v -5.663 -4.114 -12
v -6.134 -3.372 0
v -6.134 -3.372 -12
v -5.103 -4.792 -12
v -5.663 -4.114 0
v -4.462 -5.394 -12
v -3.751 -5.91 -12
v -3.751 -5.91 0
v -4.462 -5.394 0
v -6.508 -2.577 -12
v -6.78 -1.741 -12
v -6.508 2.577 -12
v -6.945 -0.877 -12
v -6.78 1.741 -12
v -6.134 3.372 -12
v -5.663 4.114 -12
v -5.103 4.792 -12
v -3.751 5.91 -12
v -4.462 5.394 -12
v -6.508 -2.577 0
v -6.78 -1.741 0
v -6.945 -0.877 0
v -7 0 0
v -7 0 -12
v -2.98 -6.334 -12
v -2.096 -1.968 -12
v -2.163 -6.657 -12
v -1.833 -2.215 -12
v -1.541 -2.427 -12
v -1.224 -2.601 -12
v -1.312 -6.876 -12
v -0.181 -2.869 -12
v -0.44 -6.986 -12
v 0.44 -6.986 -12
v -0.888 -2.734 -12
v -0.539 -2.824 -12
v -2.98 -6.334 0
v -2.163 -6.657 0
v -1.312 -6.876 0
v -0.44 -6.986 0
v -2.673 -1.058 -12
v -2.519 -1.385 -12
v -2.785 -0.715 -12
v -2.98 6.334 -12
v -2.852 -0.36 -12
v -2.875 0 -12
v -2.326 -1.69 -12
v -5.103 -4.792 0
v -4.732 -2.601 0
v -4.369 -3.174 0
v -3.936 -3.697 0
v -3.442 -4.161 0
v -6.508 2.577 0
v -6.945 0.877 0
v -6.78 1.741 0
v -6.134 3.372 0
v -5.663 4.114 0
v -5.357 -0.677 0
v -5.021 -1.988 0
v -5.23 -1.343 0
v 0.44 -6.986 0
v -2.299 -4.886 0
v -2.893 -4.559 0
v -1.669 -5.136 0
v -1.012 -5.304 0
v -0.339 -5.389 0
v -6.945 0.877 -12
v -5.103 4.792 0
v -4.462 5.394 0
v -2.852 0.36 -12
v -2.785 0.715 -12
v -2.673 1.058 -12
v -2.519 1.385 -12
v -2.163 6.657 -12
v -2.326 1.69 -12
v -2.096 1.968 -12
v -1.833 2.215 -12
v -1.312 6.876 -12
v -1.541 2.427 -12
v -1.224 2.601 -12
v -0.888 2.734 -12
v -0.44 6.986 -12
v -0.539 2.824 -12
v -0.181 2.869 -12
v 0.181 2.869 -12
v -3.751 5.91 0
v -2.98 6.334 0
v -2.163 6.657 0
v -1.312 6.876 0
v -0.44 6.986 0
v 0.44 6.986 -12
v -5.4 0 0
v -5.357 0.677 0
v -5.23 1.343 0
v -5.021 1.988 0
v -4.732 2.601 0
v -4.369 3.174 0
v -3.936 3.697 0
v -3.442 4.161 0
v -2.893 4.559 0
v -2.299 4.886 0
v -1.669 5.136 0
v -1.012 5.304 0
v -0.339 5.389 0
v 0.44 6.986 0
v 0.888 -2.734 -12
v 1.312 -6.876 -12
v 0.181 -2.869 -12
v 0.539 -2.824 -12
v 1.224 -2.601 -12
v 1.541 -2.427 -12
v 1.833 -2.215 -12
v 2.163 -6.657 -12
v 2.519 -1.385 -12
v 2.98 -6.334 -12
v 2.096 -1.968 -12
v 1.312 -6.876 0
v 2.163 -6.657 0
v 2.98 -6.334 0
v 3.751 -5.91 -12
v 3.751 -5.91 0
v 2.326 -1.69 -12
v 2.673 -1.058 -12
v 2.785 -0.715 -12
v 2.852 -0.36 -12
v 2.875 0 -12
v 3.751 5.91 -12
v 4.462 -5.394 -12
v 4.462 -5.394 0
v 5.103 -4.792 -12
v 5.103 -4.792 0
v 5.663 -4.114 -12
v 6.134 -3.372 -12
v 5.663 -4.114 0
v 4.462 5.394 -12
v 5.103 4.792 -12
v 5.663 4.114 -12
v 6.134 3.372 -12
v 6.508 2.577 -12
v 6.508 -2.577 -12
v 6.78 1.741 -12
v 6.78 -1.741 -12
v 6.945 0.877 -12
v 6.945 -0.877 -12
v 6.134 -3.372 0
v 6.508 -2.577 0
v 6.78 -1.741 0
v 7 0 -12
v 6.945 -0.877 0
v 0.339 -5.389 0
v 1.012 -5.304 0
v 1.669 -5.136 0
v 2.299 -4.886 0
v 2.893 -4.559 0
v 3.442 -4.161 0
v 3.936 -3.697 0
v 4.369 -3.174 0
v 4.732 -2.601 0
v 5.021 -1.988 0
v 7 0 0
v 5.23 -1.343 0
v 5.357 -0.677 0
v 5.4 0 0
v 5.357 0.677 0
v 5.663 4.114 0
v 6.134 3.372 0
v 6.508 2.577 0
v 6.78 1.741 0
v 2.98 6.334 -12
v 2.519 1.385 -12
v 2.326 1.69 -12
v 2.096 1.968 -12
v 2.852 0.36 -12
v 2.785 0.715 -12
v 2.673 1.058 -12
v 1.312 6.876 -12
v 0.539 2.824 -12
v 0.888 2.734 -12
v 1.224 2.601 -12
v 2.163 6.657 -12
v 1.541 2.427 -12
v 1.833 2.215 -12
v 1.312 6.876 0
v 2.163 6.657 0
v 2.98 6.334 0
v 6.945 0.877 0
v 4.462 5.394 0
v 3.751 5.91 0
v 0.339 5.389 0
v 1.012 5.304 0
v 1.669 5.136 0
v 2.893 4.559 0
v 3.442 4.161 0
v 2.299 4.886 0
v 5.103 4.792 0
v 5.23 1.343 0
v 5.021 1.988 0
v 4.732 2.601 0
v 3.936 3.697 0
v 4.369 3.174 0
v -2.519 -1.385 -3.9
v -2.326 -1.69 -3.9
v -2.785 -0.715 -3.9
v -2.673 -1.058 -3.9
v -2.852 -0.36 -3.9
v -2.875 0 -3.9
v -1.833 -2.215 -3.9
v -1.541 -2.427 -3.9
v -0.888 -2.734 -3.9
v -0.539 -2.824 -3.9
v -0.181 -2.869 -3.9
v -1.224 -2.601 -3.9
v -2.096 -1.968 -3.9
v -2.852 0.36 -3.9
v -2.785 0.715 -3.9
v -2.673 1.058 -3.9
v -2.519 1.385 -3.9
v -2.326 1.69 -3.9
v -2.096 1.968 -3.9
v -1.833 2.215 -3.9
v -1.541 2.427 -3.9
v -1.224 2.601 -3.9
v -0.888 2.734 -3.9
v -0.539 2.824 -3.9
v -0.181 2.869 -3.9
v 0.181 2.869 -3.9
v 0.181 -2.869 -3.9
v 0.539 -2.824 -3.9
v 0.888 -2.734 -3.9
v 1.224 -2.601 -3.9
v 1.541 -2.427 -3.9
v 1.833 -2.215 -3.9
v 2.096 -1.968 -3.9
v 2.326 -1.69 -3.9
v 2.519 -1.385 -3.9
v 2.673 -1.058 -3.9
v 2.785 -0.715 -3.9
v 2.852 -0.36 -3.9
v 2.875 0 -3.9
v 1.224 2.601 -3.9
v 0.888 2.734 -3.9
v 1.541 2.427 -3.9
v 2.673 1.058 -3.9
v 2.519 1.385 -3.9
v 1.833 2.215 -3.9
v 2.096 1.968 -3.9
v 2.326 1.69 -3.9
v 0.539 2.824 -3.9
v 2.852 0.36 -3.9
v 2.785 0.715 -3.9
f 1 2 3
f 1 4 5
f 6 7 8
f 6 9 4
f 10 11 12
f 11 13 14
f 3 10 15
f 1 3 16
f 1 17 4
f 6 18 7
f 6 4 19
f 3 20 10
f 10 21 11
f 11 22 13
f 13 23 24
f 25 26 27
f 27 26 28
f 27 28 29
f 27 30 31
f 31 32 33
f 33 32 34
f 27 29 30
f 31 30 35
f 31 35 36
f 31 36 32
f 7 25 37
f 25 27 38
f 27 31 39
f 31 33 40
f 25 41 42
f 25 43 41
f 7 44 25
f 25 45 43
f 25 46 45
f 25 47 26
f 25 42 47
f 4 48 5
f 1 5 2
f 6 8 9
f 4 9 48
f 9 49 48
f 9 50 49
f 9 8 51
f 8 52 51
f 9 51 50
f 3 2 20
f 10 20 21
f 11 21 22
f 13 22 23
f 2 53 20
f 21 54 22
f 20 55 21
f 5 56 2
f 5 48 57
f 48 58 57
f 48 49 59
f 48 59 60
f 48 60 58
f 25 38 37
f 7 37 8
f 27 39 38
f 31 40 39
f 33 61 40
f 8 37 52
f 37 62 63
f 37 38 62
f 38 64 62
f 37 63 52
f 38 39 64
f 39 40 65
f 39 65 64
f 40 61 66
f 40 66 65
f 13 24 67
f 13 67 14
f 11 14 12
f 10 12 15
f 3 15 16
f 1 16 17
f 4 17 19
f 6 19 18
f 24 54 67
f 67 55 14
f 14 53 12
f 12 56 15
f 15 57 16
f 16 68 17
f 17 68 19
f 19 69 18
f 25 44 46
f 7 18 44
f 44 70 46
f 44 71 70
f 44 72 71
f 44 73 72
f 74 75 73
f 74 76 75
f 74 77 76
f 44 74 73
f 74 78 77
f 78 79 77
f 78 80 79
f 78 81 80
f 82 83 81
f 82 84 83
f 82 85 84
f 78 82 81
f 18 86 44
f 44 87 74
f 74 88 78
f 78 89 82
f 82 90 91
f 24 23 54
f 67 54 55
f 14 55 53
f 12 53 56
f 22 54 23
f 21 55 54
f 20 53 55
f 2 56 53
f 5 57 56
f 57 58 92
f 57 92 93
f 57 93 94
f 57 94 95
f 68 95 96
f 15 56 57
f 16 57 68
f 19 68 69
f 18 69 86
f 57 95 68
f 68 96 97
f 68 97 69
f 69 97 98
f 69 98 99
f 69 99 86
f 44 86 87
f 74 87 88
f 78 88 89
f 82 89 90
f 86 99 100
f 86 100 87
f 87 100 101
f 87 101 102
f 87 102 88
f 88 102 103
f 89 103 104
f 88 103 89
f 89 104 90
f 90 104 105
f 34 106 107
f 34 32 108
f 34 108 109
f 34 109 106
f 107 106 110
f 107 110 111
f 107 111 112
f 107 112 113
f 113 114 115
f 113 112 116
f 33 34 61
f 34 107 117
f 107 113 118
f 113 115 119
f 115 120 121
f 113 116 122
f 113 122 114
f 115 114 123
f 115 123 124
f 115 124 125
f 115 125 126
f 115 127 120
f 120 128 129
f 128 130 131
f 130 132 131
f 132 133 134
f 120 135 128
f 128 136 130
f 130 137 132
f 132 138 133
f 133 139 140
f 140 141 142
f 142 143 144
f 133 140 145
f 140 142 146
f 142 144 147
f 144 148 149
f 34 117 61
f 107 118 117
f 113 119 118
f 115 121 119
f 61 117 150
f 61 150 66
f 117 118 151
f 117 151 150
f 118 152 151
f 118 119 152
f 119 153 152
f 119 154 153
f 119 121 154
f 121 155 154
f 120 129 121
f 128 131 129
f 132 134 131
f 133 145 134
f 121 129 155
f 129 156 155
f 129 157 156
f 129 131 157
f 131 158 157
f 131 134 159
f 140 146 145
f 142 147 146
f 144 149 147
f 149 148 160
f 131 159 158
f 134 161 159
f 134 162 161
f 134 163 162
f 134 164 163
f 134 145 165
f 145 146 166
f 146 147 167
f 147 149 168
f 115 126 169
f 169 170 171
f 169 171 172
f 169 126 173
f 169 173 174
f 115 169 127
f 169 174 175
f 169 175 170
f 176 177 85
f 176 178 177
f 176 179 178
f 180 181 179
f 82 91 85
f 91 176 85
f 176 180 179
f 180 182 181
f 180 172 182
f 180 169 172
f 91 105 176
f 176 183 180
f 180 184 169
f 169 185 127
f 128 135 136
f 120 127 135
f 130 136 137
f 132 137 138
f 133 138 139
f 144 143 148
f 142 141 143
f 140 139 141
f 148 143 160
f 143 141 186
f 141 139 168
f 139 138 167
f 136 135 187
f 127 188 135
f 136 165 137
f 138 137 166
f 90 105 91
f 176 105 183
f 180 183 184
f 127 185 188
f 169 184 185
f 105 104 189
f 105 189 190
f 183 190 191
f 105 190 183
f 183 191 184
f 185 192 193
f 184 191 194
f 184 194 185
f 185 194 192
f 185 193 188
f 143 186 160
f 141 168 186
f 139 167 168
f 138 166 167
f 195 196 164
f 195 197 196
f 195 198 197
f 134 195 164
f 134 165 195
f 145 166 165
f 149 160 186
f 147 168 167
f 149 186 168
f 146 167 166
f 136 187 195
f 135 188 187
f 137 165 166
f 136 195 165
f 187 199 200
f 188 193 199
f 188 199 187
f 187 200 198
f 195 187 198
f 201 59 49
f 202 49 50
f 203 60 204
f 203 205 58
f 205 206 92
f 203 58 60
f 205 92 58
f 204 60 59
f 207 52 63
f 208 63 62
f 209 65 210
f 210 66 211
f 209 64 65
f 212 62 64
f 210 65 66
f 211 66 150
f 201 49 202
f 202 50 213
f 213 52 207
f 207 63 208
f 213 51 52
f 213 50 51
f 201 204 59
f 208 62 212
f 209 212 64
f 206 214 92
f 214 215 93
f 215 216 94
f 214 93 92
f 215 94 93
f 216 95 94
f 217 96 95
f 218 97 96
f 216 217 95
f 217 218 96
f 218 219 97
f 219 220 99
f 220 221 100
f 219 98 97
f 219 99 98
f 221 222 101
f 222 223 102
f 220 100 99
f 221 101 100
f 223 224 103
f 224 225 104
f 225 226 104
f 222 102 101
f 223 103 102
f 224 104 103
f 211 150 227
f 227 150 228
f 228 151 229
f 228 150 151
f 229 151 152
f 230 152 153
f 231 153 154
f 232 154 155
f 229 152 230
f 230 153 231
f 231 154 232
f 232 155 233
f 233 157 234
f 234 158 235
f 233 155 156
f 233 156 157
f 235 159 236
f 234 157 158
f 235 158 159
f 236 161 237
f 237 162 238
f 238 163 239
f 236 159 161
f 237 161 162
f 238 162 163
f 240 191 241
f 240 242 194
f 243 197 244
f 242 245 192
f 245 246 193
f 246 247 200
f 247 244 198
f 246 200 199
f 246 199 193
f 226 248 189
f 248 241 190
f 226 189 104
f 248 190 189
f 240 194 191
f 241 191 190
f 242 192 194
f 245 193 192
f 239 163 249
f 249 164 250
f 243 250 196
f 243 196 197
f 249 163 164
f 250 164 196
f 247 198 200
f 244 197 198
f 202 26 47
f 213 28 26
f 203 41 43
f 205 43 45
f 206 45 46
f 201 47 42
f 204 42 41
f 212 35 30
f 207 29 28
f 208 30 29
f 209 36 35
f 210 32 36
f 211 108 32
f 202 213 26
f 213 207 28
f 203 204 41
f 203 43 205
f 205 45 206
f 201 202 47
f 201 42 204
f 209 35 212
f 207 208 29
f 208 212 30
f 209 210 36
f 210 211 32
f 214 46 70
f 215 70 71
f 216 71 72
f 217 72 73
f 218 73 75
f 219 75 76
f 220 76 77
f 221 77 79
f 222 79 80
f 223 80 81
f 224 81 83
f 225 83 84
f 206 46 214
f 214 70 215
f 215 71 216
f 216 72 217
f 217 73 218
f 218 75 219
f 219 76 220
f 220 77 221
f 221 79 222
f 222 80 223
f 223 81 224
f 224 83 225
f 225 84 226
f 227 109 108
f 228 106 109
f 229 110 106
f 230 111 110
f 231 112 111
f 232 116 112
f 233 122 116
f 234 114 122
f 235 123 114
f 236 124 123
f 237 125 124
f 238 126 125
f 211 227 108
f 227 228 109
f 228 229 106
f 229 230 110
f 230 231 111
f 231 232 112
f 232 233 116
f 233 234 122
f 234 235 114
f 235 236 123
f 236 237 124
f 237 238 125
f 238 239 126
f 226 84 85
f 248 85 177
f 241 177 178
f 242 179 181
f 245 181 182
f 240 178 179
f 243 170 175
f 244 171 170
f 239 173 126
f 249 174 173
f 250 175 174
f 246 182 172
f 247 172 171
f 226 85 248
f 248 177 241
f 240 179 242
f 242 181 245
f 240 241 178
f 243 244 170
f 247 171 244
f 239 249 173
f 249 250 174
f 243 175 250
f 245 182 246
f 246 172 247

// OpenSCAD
$fn = 50;


difference() {
	union() {
		translate(v = [0, 0, -12.0000000000]) {
			cylinder(h = 12, r = 7.0000000000);
		}
		#translate(v = [0, 0, -15.0000000000]) {
			cylinder(h = 15, r = 2.8750000000);
		}
	}
	union() {
		translate(v = [0, 0, 0]) {
			rotate(a = [0, 0, 0]) {
				difference() {
					union() {
						translate(v = [0, 0, -15.0000000000]) {
							cylinder(h = 15, r = 2.6000000000);
						}
						translate(v = [0, 0, -3.9000000000]) {
							cylinder(h = 3.9000000000, r1 = 2.8750000000, r2 = 5.4000000000);
						}
						translate(v = [0, 0, -15.0000000000]) {
							cylinder(h = 15, r = 2.8750000000);
						}
						translate(v = [0, 0, -15.0000000000]) {
							cylinder(h = 15, r = 2.6000000000);
						}
					}
					union();
				}
			}
		}
	}
}
